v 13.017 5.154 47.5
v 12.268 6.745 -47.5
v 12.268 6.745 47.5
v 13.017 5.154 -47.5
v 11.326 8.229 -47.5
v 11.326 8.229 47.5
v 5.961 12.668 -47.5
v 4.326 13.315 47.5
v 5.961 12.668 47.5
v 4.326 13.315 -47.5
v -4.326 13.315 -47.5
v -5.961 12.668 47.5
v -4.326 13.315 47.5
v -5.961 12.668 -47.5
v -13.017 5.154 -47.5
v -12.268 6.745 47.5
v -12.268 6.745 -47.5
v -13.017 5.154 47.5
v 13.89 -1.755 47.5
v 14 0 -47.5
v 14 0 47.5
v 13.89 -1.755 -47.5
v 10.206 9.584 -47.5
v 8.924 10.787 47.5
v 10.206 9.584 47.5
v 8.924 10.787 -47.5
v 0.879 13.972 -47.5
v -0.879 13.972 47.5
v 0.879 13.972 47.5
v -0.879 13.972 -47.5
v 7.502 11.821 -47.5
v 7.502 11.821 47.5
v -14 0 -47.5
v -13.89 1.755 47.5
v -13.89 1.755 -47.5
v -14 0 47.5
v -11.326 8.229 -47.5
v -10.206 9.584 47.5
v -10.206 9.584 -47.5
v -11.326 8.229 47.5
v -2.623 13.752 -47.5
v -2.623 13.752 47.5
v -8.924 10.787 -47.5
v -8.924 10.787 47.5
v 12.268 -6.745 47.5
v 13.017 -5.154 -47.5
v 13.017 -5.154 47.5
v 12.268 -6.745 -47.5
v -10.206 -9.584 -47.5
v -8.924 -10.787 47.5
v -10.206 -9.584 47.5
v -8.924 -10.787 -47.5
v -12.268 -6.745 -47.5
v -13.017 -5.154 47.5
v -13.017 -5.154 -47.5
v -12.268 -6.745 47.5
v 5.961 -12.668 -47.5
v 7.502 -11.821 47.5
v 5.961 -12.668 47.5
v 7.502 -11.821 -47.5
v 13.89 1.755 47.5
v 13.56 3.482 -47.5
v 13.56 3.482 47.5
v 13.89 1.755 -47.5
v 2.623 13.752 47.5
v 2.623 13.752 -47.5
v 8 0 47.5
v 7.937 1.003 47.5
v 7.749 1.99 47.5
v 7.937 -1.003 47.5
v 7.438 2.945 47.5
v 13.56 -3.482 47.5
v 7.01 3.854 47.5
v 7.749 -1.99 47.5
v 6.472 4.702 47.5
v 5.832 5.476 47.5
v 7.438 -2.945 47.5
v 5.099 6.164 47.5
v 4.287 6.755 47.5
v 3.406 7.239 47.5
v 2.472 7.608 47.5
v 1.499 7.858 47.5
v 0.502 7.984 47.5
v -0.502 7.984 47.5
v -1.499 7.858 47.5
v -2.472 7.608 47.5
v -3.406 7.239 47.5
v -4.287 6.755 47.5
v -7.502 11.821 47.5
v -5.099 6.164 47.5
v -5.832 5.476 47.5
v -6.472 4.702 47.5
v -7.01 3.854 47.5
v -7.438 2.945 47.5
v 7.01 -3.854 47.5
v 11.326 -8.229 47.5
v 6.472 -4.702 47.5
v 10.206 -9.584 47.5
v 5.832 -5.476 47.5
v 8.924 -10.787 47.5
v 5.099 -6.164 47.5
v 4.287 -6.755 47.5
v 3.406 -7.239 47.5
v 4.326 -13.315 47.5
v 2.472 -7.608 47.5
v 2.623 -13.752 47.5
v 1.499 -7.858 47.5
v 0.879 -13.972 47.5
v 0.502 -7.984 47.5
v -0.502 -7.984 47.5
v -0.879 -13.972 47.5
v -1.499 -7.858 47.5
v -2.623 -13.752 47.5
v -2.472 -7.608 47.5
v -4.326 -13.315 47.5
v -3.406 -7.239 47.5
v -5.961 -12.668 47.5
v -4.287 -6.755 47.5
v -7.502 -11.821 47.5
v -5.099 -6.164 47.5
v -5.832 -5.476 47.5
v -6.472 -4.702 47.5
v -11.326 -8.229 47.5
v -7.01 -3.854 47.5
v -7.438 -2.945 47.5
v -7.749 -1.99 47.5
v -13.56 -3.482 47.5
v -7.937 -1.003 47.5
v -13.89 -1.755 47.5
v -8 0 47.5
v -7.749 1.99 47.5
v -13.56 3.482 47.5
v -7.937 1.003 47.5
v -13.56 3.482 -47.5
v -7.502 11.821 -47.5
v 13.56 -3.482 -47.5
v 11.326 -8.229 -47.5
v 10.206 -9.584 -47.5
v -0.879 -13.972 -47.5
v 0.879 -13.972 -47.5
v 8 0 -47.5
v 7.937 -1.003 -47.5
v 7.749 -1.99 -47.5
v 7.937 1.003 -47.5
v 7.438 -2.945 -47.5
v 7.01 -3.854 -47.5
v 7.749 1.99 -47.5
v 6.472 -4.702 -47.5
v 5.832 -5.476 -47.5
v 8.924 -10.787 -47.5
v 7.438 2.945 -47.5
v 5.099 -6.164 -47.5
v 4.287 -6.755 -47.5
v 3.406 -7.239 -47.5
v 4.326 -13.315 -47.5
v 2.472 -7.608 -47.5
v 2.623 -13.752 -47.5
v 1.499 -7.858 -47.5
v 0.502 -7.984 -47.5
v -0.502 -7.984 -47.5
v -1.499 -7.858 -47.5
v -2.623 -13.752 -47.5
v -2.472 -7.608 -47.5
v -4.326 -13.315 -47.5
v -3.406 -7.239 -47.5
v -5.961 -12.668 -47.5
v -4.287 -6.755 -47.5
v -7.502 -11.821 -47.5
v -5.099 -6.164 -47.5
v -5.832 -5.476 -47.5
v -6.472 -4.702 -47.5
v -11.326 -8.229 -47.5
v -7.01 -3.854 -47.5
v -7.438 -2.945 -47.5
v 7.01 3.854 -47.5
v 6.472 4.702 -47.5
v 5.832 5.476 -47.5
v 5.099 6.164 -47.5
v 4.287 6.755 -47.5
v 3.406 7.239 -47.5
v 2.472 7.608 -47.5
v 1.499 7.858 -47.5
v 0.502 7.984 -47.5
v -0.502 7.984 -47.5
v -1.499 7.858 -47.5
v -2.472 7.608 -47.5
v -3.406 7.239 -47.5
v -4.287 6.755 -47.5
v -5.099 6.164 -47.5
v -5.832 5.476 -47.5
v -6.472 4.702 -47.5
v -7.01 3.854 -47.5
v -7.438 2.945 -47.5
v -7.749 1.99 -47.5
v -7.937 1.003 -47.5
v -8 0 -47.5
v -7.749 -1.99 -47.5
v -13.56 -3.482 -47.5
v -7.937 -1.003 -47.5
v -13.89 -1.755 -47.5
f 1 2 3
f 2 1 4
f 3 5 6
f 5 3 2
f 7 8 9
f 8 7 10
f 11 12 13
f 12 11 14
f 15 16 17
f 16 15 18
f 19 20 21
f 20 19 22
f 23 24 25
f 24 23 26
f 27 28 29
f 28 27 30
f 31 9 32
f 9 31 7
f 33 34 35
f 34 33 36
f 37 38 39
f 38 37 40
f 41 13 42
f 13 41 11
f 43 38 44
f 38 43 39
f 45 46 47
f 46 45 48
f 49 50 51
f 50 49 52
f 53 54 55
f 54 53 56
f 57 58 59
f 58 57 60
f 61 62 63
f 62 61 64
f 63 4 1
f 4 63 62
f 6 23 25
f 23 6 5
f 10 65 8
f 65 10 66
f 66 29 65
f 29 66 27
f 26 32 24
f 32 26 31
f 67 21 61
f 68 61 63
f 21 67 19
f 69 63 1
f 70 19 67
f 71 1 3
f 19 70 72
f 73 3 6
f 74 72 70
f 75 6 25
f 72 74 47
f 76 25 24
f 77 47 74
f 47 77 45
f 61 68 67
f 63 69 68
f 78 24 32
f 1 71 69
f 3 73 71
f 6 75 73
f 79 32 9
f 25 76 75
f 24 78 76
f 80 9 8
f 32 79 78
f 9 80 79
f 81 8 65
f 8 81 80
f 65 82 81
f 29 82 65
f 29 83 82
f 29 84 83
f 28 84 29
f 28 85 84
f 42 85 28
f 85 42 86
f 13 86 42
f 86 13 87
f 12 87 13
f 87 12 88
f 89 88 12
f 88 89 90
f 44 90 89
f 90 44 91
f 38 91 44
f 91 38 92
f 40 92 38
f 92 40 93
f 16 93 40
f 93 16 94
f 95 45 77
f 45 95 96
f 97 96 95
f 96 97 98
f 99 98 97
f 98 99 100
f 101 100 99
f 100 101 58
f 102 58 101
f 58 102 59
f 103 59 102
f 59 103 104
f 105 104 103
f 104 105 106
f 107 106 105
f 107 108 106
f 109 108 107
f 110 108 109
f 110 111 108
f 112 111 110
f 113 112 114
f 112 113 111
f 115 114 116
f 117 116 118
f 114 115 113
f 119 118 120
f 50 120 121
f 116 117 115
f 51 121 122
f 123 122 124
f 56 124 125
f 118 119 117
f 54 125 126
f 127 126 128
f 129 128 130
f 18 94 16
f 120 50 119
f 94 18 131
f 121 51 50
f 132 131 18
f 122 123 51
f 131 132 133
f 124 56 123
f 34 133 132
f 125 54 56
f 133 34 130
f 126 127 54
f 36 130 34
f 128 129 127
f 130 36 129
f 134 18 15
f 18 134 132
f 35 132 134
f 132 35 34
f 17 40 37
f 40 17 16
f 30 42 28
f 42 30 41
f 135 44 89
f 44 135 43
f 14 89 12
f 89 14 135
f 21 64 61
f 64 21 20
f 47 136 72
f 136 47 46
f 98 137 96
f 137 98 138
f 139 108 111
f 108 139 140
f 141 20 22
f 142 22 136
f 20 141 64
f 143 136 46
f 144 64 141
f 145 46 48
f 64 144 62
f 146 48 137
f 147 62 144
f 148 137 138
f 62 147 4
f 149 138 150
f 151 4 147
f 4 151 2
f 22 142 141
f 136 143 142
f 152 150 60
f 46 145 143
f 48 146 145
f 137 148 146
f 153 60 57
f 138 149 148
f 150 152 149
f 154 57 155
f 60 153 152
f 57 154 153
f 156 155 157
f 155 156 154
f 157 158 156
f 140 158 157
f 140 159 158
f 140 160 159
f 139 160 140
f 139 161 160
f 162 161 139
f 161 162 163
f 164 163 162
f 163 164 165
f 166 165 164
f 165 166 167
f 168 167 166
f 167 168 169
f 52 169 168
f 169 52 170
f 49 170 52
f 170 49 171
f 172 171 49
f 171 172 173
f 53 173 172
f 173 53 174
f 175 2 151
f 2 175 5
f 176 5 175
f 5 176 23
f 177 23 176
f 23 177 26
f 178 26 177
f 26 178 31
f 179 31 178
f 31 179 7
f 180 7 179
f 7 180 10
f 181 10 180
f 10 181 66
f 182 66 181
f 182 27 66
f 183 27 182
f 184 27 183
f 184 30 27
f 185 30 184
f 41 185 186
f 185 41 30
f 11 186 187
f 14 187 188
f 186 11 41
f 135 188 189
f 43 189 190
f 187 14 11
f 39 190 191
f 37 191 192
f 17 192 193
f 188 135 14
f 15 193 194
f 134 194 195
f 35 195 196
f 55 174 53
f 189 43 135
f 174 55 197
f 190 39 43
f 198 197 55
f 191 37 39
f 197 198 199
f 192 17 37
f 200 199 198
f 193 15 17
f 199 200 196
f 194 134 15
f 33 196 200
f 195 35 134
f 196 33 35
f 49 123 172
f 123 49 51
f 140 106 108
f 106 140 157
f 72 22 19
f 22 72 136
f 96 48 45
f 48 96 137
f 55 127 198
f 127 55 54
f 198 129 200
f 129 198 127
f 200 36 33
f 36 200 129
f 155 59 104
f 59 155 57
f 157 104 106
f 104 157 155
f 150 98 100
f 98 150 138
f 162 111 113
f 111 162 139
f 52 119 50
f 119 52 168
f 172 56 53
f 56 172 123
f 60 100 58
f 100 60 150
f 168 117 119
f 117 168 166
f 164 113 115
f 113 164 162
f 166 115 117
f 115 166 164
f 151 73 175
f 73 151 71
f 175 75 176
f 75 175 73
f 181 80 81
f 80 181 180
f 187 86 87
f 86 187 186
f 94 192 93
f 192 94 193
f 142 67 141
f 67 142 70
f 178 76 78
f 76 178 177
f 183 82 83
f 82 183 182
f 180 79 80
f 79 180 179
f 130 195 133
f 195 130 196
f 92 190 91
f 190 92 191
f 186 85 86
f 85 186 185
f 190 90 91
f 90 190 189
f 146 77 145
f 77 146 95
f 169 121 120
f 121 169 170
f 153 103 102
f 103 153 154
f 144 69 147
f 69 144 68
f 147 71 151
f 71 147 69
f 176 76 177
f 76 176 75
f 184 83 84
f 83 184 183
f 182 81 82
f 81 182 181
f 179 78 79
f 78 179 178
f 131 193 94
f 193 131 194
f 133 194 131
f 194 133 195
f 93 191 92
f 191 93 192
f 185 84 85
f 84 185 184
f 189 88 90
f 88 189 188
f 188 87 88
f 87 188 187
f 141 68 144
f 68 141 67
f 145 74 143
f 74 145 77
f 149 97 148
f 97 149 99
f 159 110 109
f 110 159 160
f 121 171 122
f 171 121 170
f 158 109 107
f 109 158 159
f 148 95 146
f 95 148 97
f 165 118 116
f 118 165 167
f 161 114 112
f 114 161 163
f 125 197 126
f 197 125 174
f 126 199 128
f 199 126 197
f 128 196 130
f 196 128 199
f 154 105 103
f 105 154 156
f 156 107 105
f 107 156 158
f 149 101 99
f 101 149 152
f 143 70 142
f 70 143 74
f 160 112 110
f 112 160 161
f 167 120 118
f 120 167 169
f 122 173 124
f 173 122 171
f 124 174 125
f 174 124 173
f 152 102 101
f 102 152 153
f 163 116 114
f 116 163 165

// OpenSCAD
$fn = 50;


difference() {
	union() {
		translate(v = [0, 0, -47.5000000000]) {
			cylinder(h = 95, r = 14.0000000000);
		}
	}
	union() {
		translate(v = [0, 0, -100.0000000000]) {
			cylinder(h = 200, r = 8);
		}
	}
}
